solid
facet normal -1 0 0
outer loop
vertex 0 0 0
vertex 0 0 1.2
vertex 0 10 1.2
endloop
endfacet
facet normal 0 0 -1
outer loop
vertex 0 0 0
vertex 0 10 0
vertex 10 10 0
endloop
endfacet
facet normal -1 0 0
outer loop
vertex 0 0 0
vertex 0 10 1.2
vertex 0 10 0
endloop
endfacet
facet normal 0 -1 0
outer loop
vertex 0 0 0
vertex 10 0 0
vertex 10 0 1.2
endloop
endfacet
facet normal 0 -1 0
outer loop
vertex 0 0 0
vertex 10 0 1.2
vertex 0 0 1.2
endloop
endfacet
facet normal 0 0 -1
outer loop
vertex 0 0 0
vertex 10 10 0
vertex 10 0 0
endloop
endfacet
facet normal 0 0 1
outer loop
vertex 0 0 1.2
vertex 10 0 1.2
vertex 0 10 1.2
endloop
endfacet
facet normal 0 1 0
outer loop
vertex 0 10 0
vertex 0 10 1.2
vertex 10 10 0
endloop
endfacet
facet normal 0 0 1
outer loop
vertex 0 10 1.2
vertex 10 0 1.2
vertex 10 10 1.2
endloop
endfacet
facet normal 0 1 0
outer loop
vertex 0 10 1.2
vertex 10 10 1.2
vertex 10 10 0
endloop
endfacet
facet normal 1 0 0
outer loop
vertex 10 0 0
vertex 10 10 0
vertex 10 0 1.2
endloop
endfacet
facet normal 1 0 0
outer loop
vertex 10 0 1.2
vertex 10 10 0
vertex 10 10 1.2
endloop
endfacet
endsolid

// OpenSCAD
/* Warning, this is a very basic generator with a lot of approximation 
input data : [TFBGA, HQB, 10x10x1.2mm, 144, , A, C04-21565A]
generated by com.zoubworld.electronics.cad.model3d.Basic
Date : Sun Feb 15 10:50:49 CET 2026
*/

//body
color("black")
translate([0,0,0])
cube([10.0,10.0,1.2], center=false);
